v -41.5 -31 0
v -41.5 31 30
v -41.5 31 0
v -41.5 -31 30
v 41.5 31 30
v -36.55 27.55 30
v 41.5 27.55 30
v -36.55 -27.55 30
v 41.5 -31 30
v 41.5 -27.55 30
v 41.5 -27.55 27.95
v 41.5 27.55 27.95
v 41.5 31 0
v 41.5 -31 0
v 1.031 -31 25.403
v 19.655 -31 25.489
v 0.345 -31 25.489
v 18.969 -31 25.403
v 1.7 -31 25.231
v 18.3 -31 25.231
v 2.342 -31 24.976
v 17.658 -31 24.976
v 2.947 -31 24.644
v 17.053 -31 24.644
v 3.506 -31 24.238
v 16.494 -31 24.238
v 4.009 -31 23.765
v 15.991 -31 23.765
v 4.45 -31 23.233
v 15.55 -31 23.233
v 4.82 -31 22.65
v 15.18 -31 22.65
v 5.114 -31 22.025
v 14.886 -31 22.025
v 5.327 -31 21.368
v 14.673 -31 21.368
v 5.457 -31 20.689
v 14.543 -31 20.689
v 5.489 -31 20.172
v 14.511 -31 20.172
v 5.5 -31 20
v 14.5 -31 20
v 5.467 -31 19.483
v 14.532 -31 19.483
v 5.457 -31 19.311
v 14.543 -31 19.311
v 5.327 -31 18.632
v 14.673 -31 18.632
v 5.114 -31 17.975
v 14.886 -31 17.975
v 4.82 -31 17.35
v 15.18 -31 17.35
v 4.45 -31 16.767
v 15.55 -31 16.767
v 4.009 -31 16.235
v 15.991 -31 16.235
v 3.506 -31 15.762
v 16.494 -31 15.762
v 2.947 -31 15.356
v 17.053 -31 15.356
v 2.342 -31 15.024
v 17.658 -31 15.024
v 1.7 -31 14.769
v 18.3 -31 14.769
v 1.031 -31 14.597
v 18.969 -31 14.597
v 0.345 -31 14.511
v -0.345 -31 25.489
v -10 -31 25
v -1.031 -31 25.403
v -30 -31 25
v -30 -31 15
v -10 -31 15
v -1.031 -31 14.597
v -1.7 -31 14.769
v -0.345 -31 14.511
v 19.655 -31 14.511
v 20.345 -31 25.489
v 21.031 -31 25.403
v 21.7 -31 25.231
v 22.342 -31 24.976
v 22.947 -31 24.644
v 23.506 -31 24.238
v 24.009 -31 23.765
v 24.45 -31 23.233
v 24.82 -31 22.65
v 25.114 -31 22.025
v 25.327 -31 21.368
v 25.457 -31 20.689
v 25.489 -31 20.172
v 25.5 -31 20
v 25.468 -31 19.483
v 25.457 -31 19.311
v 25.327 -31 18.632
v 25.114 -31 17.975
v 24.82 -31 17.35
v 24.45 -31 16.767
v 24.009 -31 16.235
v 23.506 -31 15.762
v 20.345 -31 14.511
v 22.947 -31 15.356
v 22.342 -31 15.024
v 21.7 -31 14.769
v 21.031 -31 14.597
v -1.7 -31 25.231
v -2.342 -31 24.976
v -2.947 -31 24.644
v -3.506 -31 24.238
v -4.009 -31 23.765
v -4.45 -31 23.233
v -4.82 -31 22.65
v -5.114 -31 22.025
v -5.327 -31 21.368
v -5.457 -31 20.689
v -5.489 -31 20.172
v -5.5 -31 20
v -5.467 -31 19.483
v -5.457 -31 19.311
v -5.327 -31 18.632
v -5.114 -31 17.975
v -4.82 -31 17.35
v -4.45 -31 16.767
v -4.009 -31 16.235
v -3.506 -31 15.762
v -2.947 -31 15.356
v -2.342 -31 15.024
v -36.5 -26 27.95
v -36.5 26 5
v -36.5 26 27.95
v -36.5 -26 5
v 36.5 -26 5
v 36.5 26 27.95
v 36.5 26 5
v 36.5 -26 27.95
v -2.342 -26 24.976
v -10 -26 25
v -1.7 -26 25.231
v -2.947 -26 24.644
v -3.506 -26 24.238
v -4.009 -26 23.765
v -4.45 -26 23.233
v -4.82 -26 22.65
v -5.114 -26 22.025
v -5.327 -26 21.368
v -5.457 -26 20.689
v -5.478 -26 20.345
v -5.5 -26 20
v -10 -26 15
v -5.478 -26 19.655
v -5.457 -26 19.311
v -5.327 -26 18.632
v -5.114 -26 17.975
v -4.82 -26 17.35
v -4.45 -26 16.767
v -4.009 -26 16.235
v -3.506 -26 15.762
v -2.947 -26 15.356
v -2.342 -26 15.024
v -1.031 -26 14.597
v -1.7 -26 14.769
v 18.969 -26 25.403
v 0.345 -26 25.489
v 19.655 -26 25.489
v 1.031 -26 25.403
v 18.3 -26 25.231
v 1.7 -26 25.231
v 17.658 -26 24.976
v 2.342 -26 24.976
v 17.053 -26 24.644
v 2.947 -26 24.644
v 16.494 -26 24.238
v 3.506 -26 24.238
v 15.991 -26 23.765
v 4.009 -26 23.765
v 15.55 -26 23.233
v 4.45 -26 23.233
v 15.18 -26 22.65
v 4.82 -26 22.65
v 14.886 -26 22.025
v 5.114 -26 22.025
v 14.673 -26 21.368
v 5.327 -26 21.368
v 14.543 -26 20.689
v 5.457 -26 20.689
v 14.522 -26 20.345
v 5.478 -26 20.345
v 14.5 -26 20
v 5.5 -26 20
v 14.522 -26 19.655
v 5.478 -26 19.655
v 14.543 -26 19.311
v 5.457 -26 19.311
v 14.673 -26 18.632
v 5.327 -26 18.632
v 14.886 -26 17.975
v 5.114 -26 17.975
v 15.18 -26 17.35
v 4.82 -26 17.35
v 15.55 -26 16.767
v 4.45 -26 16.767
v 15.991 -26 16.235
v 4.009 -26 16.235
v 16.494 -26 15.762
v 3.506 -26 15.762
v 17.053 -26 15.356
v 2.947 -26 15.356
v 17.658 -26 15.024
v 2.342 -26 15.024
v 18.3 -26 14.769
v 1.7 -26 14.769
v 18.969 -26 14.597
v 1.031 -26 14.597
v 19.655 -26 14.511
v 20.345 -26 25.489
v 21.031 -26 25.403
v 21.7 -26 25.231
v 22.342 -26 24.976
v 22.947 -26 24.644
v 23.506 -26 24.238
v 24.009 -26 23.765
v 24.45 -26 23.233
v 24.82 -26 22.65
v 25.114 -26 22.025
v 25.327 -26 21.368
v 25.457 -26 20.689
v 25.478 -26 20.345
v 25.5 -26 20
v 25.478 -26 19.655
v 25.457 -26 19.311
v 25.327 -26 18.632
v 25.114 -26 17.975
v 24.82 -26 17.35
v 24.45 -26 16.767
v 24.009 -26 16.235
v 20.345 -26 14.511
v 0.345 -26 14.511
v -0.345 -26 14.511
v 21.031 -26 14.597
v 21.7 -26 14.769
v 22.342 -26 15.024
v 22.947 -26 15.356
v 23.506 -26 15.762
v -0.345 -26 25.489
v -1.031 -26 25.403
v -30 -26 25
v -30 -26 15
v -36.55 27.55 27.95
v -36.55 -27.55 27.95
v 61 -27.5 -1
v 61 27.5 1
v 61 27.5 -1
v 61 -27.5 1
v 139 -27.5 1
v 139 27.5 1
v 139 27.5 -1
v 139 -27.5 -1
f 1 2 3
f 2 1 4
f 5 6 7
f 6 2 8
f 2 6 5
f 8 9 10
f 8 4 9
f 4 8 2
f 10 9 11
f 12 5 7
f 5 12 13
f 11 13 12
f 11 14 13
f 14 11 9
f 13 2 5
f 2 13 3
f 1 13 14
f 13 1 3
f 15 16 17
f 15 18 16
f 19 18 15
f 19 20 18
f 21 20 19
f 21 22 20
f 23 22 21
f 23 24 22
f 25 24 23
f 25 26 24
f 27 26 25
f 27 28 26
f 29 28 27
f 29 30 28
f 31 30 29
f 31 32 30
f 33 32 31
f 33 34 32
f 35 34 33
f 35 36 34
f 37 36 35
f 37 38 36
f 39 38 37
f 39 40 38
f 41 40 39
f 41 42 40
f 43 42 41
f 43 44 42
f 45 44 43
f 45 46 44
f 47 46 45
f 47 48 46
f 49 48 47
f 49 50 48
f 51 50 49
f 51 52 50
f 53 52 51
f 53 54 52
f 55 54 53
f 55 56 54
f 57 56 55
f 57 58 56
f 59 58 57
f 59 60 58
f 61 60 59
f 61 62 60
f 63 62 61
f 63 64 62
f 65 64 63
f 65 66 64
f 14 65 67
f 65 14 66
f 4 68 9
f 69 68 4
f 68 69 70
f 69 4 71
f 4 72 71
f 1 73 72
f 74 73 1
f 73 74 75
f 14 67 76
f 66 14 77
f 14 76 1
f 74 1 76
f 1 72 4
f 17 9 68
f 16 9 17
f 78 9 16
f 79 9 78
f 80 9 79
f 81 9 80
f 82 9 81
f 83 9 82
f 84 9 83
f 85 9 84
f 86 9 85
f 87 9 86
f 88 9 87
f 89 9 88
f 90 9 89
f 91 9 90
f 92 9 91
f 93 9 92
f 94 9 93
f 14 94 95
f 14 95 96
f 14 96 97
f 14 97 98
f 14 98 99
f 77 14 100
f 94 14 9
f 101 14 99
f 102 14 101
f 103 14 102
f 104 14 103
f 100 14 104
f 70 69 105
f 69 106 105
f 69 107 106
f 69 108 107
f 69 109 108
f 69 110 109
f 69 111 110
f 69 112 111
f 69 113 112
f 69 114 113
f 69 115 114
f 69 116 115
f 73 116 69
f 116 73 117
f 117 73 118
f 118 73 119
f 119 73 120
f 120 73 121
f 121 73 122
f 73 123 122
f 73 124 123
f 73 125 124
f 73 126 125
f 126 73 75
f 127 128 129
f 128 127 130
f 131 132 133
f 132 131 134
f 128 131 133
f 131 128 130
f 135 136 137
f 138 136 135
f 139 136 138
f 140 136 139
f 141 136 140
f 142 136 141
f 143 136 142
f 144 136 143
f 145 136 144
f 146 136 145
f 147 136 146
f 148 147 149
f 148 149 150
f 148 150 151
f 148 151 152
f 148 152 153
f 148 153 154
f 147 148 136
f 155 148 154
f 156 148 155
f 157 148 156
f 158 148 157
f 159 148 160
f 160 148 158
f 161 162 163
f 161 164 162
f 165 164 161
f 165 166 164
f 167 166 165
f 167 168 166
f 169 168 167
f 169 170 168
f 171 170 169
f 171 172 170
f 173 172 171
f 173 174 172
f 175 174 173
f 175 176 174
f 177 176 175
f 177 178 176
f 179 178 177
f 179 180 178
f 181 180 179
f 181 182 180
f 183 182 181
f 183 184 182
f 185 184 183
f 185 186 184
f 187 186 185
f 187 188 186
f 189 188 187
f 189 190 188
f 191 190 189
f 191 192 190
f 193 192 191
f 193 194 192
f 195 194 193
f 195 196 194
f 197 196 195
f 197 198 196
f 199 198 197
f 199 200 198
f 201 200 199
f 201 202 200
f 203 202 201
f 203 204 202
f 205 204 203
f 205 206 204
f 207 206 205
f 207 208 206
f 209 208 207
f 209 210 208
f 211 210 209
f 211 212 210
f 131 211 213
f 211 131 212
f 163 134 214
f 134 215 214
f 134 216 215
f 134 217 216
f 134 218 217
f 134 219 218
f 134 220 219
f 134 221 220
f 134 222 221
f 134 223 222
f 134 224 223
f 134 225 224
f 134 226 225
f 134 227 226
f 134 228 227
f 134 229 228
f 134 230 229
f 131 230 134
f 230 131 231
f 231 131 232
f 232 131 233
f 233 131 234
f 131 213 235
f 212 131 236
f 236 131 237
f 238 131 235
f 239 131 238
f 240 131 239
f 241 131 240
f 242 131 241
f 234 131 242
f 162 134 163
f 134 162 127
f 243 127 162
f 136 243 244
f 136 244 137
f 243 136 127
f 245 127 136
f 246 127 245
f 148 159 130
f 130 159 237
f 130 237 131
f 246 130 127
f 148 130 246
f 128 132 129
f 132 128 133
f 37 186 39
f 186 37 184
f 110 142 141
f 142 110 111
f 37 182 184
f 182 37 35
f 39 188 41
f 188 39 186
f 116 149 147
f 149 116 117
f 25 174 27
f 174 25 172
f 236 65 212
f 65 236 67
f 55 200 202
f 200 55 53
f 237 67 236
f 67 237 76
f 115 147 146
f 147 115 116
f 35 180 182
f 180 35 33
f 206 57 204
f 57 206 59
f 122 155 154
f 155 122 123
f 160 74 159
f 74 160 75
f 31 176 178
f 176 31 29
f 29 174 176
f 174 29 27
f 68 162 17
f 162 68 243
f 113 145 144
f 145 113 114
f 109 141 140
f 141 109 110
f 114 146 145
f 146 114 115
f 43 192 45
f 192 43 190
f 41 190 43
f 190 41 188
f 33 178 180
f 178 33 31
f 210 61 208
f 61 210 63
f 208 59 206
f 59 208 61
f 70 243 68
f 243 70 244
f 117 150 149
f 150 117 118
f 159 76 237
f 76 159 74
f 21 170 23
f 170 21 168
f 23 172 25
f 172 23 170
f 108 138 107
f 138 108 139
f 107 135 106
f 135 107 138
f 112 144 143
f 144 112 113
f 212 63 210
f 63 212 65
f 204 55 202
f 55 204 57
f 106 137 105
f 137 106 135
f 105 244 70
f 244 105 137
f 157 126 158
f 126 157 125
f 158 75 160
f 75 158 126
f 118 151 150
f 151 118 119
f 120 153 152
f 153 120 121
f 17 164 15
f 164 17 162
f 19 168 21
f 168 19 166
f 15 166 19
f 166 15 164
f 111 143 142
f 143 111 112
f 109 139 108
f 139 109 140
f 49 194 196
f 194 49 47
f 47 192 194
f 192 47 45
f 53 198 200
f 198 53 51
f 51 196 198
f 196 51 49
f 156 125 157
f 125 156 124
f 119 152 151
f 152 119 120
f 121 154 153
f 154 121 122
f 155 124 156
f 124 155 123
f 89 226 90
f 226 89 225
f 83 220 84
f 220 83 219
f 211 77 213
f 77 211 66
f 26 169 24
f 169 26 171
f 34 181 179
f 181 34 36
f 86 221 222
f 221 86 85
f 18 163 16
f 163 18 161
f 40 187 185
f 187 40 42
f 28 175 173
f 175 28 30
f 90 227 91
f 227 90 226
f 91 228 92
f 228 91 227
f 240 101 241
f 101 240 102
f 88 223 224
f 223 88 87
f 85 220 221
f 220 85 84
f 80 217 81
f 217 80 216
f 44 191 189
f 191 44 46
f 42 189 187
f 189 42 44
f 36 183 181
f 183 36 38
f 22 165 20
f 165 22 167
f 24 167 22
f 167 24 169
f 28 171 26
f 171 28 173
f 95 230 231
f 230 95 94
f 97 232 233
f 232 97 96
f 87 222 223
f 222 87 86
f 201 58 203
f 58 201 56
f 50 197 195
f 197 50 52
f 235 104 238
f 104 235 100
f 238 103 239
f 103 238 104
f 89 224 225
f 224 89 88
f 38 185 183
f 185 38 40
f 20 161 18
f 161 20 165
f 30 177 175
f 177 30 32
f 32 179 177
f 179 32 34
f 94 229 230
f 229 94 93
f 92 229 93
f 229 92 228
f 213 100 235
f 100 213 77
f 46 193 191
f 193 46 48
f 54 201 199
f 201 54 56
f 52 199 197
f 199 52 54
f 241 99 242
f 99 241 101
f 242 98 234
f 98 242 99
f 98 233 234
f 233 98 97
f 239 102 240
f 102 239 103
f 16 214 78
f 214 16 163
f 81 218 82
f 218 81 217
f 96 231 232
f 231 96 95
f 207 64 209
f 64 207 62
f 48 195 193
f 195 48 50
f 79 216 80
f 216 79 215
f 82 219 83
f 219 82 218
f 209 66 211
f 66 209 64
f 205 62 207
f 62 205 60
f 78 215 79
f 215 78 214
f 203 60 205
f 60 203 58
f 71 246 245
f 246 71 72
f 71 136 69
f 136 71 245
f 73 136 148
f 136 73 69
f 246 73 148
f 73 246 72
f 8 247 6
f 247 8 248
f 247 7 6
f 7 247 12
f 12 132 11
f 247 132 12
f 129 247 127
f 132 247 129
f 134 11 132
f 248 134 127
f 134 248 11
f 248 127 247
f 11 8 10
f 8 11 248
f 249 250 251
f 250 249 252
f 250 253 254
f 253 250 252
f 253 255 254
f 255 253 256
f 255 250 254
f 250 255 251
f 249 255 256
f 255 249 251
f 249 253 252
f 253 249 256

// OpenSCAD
sizeHueco = [50+23,52,30];

sizeTapa = sizeHueco - [0, 0, sizeHueco[2]] + [5,3,2];

$fn=50;

translate([0,0,sizeHueco[2]/2])
difference(){
    cube(sizeHueco + 10 * [1, 1, 0], center=true);

    translate([0,0,5]){
        cube(sizeHueco, center=true);
    }
    
     /*for (i = [-45, 45, 90+45,180 + 45]){
        pos = [(sizeHueco[0] + 10)/sqrt(2) * cos(i), (sizeHueco[1] + 10)/sqrt(2) * sin(i), 10];
        
        translate(pos){
            cylinder(d=5, h=20, center = true, $fn = 50);
        }
    }*/
    
    //BNC fotodiodo
    translate([0,-sizeHueco[1]/2,5]){
        rotate([90,0,0]){
            cylinder(d=11,h=20,center=true);
        }
    }
    
    //Jack tensión
    translate([20,-sizeHueco[1]/2,5]){
        rotate([90,0,0]){
            cylinder(d=11,h=20,center=true);
        }
    }
    
    //Cable plano de motor
    translate([-20,-sizeHueco[1]/2,5]){
        cube([20,20,10], center=true);
    }
    
    
    translate([2.5,0,sizeHueco[2]/2 - 1]){
        cube(sizeTapa + [0.1,0.1,0.1], center = true);
    }
}

translate([100,0,0]){
    cube(sizeTapa, center = true);
   
}
